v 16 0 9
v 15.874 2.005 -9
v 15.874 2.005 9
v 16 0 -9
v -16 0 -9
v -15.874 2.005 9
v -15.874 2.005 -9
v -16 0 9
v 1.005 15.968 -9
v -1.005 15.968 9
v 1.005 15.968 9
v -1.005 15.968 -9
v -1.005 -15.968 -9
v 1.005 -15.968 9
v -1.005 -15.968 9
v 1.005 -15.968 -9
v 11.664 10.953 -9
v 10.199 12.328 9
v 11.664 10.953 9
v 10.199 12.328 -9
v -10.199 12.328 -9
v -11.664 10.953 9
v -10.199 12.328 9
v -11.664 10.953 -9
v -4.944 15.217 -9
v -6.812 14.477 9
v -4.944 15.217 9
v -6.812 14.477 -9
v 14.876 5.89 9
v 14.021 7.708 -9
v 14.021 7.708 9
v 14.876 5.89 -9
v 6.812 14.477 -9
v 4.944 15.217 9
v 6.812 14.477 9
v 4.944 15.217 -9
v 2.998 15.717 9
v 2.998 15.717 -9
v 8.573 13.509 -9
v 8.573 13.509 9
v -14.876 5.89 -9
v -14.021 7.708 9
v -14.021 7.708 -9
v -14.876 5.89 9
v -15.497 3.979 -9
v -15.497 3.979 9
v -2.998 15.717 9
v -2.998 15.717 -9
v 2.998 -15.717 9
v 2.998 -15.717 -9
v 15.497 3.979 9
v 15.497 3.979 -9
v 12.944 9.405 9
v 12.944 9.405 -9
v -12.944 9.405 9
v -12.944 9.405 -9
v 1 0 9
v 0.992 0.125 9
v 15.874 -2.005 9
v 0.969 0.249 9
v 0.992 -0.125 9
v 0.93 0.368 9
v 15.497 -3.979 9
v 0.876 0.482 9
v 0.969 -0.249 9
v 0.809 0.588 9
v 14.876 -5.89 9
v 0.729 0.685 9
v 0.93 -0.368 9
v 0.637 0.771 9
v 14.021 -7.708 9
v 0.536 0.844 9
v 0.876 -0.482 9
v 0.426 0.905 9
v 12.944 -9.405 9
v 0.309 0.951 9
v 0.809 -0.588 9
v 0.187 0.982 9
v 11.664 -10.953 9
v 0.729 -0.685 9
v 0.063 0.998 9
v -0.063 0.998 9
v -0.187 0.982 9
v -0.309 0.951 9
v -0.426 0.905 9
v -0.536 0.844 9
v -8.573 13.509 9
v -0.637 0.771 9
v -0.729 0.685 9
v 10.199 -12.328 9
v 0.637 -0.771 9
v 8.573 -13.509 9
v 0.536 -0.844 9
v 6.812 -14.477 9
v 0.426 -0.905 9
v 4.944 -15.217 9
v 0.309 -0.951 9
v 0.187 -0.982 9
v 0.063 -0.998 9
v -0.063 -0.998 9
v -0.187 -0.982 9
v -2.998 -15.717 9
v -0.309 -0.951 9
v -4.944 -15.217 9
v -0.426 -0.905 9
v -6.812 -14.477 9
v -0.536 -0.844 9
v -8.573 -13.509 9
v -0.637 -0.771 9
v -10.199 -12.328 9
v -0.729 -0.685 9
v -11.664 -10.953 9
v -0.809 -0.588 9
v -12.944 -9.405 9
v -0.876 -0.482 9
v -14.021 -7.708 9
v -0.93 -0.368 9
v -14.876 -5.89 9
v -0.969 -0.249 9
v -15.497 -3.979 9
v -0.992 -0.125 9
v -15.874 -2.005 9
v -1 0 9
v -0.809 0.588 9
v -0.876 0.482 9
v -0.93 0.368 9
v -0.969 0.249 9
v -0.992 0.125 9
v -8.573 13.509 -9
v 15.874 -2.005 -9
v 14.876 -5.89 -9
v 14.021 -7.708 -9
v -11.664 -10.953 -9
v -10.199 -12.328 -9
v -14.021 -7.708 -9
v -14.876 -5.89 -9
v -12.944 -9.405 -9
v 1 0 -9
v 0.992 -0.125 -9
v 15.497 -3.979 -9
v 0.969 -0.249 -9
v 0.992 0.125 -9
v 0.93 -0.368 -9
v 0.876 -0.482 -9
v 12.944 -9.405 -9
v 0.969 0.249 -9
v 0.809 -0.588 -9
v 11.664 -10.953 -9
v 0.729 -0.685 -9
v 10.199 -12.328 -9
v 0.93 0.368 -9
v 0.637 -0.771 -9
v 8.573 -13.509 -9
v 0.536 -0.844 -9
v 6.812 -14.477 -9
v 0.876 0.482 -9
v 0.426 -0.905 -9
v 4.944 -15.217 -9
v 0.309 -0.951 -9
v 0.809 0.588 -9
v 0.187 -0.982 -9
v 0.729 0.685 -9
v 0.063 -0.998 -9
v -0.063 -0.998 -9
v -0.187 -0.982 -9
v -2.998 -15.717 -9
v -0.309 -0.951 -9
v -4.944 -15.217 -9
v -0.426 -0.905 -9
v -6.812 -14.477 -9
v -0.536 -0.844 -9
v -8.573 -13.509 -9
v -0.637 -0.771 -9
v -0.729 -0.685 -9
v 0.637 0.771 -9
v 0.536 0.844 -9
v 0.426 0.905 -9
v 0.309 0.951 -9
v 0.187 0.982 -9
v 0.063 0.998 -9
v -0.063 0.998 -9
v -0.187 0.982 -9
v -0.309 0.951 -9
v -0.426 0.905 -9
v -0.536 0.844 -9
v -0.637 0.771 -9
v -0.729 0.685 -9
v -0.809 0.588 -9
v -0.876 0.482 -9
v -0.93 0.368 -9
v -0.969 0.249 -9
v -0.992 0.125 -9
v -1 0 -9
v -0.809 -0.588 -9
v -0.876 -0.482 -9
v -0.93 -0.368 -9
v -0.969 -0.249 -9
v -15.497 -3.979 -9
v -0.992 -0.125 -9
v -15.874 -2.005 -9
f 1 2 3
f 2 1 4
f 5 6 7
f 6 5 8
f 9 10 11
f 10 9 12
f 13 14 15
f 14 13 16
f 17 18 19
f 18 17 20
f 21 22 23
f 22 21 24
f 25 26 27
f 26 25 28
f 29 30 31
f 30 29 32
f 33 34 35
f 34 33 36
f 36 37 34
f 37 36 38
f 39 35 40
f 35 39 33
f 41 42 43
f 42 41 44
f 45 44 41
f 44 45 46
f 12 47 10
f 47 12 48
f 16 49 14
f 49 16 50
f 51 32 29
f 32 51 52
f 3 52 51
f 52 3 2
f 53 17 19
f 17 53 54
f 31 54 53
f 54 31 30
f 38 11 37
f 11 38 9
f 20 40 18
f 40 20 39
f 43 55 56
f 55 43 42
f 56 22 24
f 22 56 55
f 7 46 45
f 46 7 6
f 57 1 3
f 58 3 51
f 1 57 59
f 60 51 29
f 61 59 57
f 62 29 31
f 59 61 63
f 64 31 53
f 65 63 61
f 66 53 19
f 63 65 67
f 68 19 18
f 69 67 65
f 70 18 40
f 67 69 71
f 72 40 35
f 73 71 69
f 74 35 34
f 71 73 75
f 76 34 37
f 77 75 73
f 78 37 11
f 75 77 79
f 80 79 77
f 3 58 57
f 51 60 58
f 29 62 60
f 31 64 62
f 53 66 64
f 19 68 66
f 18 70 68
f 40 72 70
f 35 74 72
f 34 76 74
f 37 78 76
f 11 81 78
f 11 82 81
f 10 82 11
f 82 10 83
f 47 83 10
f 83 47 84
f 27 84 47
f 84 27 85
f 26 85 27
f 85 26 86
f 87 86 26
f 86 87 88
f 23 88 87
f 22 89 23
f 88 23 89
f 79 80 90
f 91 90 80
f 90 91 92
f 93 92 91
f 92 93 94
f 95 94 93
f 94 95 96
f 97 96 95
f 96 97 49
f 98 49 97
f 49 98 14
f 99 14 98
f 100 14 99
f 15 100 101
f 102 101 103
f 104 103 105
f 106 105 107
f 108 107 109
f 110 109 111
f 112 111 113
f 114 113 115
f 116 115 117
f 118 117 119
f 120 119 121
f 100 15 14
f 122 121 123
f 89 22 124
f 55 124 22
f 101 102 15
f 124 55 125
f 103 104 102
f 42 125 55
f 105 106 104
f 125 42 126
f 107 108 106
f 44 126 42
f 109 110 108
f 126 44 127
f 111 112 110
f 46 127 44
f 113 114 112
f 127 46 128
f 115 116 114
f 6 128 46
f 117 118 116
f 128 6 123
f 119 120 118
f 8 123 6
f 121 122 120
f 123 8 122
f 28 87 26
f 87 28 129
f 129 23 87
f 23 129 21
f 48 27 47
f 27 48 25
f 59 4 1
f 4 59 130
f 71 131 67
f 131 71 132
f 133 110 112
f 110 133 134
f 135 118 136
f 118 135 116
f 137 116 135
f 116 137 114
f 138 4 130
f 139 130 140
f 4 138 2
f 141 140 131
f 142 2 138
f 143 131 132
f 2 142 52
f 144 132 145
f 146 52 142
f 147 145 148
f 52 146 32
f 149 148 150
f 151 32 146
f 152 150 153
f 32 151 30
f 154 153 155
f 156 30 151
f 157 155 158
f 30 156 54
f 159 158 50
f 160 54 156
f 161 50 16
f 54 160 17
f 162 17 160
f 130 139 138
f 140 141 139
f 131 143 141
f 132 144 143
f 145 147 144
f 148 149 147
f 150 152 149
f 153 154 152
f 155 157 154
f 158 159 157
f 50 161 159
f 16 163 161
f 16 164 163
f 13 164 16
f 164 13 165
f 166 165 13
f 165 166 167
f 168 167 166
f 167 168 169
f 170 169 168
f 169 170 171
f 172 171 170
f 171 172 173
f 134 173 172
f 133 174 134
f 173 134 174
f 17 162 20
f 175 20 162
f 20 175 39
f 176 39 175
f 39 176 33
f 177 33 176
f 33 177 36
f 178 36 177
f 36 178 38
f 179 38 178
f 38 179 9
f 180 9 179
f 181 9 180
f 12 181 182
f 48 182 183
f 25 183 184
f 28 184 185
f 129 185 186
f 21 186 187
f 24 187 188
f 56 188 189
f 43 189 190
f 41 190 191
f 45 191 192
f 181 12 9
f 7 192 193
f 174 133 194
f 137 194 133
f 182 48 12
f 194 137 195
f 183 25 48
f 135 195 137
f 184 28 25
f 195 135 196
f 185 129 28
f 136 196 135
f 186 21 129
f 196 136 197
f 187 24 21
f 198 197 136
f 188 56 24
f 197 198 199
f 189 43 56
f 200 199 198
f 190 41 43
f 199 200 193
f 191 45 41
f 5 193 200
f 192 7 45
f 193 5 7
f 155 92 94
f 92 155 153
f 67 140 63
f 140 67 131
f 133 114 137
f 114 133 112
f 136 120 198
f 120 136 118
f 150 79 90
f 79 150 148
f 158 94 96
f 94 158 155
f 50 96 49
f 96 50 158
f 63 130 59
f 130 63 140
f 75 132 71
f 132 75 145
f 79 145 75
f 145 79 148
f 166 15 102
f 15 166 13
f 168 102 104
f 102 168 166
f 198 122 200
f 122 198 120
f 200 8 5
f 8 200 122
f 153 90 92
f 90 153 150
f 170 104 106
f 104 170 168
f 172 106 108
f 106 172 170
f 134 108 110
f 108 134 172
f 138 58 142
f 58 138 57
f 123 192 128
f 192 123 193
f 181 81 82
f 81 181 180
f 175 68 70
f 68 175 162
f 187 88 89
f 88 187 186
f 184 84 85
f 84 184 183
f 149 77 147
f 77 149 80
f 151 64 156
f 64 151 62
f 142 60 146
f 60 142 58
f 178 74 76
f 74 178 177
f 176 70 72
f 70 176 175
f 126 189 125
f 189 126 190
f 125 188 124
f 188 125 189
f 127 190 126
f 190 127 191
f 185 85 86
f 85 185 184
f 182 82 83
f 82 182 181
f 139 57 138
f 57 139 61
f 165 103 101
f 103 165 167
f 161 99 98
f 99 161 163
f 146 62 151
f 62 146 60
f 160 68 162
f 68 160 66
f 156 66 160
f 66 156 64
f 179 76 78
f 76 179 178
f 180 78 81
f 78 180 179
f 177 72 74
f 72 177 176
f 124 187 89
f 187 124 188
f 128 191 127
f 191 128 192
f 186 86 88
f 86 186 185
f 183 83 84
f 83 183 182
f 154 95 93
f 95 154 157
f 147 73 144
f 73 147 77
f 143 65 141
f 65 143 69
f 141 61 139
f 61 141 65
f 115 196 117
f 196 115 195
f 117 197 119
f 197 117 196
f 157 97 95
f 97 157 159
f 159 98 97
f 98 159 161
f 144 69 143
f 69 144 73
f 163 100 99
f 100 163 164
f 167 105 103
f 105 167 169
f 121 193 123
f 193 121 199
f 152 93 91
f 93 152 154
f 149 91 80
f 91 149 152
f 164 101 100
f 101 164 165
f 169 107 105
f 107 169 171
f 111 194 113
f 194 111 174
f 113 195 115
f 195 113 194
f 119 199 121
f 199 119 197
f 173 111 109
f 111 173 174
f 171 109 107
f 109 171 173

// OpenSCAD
$fn = 50;


difference() {
	union() {
		translate(v = [0, 0, -9.0000000000]) {
			cylinder(h = 18, r = 16.0000000000);
		}
	}
	union() {
		translate(v = [0, 0, -100.0000000000]) {
			cylinder(h = 200, r = 1.0000000000);
		}
	}
}
